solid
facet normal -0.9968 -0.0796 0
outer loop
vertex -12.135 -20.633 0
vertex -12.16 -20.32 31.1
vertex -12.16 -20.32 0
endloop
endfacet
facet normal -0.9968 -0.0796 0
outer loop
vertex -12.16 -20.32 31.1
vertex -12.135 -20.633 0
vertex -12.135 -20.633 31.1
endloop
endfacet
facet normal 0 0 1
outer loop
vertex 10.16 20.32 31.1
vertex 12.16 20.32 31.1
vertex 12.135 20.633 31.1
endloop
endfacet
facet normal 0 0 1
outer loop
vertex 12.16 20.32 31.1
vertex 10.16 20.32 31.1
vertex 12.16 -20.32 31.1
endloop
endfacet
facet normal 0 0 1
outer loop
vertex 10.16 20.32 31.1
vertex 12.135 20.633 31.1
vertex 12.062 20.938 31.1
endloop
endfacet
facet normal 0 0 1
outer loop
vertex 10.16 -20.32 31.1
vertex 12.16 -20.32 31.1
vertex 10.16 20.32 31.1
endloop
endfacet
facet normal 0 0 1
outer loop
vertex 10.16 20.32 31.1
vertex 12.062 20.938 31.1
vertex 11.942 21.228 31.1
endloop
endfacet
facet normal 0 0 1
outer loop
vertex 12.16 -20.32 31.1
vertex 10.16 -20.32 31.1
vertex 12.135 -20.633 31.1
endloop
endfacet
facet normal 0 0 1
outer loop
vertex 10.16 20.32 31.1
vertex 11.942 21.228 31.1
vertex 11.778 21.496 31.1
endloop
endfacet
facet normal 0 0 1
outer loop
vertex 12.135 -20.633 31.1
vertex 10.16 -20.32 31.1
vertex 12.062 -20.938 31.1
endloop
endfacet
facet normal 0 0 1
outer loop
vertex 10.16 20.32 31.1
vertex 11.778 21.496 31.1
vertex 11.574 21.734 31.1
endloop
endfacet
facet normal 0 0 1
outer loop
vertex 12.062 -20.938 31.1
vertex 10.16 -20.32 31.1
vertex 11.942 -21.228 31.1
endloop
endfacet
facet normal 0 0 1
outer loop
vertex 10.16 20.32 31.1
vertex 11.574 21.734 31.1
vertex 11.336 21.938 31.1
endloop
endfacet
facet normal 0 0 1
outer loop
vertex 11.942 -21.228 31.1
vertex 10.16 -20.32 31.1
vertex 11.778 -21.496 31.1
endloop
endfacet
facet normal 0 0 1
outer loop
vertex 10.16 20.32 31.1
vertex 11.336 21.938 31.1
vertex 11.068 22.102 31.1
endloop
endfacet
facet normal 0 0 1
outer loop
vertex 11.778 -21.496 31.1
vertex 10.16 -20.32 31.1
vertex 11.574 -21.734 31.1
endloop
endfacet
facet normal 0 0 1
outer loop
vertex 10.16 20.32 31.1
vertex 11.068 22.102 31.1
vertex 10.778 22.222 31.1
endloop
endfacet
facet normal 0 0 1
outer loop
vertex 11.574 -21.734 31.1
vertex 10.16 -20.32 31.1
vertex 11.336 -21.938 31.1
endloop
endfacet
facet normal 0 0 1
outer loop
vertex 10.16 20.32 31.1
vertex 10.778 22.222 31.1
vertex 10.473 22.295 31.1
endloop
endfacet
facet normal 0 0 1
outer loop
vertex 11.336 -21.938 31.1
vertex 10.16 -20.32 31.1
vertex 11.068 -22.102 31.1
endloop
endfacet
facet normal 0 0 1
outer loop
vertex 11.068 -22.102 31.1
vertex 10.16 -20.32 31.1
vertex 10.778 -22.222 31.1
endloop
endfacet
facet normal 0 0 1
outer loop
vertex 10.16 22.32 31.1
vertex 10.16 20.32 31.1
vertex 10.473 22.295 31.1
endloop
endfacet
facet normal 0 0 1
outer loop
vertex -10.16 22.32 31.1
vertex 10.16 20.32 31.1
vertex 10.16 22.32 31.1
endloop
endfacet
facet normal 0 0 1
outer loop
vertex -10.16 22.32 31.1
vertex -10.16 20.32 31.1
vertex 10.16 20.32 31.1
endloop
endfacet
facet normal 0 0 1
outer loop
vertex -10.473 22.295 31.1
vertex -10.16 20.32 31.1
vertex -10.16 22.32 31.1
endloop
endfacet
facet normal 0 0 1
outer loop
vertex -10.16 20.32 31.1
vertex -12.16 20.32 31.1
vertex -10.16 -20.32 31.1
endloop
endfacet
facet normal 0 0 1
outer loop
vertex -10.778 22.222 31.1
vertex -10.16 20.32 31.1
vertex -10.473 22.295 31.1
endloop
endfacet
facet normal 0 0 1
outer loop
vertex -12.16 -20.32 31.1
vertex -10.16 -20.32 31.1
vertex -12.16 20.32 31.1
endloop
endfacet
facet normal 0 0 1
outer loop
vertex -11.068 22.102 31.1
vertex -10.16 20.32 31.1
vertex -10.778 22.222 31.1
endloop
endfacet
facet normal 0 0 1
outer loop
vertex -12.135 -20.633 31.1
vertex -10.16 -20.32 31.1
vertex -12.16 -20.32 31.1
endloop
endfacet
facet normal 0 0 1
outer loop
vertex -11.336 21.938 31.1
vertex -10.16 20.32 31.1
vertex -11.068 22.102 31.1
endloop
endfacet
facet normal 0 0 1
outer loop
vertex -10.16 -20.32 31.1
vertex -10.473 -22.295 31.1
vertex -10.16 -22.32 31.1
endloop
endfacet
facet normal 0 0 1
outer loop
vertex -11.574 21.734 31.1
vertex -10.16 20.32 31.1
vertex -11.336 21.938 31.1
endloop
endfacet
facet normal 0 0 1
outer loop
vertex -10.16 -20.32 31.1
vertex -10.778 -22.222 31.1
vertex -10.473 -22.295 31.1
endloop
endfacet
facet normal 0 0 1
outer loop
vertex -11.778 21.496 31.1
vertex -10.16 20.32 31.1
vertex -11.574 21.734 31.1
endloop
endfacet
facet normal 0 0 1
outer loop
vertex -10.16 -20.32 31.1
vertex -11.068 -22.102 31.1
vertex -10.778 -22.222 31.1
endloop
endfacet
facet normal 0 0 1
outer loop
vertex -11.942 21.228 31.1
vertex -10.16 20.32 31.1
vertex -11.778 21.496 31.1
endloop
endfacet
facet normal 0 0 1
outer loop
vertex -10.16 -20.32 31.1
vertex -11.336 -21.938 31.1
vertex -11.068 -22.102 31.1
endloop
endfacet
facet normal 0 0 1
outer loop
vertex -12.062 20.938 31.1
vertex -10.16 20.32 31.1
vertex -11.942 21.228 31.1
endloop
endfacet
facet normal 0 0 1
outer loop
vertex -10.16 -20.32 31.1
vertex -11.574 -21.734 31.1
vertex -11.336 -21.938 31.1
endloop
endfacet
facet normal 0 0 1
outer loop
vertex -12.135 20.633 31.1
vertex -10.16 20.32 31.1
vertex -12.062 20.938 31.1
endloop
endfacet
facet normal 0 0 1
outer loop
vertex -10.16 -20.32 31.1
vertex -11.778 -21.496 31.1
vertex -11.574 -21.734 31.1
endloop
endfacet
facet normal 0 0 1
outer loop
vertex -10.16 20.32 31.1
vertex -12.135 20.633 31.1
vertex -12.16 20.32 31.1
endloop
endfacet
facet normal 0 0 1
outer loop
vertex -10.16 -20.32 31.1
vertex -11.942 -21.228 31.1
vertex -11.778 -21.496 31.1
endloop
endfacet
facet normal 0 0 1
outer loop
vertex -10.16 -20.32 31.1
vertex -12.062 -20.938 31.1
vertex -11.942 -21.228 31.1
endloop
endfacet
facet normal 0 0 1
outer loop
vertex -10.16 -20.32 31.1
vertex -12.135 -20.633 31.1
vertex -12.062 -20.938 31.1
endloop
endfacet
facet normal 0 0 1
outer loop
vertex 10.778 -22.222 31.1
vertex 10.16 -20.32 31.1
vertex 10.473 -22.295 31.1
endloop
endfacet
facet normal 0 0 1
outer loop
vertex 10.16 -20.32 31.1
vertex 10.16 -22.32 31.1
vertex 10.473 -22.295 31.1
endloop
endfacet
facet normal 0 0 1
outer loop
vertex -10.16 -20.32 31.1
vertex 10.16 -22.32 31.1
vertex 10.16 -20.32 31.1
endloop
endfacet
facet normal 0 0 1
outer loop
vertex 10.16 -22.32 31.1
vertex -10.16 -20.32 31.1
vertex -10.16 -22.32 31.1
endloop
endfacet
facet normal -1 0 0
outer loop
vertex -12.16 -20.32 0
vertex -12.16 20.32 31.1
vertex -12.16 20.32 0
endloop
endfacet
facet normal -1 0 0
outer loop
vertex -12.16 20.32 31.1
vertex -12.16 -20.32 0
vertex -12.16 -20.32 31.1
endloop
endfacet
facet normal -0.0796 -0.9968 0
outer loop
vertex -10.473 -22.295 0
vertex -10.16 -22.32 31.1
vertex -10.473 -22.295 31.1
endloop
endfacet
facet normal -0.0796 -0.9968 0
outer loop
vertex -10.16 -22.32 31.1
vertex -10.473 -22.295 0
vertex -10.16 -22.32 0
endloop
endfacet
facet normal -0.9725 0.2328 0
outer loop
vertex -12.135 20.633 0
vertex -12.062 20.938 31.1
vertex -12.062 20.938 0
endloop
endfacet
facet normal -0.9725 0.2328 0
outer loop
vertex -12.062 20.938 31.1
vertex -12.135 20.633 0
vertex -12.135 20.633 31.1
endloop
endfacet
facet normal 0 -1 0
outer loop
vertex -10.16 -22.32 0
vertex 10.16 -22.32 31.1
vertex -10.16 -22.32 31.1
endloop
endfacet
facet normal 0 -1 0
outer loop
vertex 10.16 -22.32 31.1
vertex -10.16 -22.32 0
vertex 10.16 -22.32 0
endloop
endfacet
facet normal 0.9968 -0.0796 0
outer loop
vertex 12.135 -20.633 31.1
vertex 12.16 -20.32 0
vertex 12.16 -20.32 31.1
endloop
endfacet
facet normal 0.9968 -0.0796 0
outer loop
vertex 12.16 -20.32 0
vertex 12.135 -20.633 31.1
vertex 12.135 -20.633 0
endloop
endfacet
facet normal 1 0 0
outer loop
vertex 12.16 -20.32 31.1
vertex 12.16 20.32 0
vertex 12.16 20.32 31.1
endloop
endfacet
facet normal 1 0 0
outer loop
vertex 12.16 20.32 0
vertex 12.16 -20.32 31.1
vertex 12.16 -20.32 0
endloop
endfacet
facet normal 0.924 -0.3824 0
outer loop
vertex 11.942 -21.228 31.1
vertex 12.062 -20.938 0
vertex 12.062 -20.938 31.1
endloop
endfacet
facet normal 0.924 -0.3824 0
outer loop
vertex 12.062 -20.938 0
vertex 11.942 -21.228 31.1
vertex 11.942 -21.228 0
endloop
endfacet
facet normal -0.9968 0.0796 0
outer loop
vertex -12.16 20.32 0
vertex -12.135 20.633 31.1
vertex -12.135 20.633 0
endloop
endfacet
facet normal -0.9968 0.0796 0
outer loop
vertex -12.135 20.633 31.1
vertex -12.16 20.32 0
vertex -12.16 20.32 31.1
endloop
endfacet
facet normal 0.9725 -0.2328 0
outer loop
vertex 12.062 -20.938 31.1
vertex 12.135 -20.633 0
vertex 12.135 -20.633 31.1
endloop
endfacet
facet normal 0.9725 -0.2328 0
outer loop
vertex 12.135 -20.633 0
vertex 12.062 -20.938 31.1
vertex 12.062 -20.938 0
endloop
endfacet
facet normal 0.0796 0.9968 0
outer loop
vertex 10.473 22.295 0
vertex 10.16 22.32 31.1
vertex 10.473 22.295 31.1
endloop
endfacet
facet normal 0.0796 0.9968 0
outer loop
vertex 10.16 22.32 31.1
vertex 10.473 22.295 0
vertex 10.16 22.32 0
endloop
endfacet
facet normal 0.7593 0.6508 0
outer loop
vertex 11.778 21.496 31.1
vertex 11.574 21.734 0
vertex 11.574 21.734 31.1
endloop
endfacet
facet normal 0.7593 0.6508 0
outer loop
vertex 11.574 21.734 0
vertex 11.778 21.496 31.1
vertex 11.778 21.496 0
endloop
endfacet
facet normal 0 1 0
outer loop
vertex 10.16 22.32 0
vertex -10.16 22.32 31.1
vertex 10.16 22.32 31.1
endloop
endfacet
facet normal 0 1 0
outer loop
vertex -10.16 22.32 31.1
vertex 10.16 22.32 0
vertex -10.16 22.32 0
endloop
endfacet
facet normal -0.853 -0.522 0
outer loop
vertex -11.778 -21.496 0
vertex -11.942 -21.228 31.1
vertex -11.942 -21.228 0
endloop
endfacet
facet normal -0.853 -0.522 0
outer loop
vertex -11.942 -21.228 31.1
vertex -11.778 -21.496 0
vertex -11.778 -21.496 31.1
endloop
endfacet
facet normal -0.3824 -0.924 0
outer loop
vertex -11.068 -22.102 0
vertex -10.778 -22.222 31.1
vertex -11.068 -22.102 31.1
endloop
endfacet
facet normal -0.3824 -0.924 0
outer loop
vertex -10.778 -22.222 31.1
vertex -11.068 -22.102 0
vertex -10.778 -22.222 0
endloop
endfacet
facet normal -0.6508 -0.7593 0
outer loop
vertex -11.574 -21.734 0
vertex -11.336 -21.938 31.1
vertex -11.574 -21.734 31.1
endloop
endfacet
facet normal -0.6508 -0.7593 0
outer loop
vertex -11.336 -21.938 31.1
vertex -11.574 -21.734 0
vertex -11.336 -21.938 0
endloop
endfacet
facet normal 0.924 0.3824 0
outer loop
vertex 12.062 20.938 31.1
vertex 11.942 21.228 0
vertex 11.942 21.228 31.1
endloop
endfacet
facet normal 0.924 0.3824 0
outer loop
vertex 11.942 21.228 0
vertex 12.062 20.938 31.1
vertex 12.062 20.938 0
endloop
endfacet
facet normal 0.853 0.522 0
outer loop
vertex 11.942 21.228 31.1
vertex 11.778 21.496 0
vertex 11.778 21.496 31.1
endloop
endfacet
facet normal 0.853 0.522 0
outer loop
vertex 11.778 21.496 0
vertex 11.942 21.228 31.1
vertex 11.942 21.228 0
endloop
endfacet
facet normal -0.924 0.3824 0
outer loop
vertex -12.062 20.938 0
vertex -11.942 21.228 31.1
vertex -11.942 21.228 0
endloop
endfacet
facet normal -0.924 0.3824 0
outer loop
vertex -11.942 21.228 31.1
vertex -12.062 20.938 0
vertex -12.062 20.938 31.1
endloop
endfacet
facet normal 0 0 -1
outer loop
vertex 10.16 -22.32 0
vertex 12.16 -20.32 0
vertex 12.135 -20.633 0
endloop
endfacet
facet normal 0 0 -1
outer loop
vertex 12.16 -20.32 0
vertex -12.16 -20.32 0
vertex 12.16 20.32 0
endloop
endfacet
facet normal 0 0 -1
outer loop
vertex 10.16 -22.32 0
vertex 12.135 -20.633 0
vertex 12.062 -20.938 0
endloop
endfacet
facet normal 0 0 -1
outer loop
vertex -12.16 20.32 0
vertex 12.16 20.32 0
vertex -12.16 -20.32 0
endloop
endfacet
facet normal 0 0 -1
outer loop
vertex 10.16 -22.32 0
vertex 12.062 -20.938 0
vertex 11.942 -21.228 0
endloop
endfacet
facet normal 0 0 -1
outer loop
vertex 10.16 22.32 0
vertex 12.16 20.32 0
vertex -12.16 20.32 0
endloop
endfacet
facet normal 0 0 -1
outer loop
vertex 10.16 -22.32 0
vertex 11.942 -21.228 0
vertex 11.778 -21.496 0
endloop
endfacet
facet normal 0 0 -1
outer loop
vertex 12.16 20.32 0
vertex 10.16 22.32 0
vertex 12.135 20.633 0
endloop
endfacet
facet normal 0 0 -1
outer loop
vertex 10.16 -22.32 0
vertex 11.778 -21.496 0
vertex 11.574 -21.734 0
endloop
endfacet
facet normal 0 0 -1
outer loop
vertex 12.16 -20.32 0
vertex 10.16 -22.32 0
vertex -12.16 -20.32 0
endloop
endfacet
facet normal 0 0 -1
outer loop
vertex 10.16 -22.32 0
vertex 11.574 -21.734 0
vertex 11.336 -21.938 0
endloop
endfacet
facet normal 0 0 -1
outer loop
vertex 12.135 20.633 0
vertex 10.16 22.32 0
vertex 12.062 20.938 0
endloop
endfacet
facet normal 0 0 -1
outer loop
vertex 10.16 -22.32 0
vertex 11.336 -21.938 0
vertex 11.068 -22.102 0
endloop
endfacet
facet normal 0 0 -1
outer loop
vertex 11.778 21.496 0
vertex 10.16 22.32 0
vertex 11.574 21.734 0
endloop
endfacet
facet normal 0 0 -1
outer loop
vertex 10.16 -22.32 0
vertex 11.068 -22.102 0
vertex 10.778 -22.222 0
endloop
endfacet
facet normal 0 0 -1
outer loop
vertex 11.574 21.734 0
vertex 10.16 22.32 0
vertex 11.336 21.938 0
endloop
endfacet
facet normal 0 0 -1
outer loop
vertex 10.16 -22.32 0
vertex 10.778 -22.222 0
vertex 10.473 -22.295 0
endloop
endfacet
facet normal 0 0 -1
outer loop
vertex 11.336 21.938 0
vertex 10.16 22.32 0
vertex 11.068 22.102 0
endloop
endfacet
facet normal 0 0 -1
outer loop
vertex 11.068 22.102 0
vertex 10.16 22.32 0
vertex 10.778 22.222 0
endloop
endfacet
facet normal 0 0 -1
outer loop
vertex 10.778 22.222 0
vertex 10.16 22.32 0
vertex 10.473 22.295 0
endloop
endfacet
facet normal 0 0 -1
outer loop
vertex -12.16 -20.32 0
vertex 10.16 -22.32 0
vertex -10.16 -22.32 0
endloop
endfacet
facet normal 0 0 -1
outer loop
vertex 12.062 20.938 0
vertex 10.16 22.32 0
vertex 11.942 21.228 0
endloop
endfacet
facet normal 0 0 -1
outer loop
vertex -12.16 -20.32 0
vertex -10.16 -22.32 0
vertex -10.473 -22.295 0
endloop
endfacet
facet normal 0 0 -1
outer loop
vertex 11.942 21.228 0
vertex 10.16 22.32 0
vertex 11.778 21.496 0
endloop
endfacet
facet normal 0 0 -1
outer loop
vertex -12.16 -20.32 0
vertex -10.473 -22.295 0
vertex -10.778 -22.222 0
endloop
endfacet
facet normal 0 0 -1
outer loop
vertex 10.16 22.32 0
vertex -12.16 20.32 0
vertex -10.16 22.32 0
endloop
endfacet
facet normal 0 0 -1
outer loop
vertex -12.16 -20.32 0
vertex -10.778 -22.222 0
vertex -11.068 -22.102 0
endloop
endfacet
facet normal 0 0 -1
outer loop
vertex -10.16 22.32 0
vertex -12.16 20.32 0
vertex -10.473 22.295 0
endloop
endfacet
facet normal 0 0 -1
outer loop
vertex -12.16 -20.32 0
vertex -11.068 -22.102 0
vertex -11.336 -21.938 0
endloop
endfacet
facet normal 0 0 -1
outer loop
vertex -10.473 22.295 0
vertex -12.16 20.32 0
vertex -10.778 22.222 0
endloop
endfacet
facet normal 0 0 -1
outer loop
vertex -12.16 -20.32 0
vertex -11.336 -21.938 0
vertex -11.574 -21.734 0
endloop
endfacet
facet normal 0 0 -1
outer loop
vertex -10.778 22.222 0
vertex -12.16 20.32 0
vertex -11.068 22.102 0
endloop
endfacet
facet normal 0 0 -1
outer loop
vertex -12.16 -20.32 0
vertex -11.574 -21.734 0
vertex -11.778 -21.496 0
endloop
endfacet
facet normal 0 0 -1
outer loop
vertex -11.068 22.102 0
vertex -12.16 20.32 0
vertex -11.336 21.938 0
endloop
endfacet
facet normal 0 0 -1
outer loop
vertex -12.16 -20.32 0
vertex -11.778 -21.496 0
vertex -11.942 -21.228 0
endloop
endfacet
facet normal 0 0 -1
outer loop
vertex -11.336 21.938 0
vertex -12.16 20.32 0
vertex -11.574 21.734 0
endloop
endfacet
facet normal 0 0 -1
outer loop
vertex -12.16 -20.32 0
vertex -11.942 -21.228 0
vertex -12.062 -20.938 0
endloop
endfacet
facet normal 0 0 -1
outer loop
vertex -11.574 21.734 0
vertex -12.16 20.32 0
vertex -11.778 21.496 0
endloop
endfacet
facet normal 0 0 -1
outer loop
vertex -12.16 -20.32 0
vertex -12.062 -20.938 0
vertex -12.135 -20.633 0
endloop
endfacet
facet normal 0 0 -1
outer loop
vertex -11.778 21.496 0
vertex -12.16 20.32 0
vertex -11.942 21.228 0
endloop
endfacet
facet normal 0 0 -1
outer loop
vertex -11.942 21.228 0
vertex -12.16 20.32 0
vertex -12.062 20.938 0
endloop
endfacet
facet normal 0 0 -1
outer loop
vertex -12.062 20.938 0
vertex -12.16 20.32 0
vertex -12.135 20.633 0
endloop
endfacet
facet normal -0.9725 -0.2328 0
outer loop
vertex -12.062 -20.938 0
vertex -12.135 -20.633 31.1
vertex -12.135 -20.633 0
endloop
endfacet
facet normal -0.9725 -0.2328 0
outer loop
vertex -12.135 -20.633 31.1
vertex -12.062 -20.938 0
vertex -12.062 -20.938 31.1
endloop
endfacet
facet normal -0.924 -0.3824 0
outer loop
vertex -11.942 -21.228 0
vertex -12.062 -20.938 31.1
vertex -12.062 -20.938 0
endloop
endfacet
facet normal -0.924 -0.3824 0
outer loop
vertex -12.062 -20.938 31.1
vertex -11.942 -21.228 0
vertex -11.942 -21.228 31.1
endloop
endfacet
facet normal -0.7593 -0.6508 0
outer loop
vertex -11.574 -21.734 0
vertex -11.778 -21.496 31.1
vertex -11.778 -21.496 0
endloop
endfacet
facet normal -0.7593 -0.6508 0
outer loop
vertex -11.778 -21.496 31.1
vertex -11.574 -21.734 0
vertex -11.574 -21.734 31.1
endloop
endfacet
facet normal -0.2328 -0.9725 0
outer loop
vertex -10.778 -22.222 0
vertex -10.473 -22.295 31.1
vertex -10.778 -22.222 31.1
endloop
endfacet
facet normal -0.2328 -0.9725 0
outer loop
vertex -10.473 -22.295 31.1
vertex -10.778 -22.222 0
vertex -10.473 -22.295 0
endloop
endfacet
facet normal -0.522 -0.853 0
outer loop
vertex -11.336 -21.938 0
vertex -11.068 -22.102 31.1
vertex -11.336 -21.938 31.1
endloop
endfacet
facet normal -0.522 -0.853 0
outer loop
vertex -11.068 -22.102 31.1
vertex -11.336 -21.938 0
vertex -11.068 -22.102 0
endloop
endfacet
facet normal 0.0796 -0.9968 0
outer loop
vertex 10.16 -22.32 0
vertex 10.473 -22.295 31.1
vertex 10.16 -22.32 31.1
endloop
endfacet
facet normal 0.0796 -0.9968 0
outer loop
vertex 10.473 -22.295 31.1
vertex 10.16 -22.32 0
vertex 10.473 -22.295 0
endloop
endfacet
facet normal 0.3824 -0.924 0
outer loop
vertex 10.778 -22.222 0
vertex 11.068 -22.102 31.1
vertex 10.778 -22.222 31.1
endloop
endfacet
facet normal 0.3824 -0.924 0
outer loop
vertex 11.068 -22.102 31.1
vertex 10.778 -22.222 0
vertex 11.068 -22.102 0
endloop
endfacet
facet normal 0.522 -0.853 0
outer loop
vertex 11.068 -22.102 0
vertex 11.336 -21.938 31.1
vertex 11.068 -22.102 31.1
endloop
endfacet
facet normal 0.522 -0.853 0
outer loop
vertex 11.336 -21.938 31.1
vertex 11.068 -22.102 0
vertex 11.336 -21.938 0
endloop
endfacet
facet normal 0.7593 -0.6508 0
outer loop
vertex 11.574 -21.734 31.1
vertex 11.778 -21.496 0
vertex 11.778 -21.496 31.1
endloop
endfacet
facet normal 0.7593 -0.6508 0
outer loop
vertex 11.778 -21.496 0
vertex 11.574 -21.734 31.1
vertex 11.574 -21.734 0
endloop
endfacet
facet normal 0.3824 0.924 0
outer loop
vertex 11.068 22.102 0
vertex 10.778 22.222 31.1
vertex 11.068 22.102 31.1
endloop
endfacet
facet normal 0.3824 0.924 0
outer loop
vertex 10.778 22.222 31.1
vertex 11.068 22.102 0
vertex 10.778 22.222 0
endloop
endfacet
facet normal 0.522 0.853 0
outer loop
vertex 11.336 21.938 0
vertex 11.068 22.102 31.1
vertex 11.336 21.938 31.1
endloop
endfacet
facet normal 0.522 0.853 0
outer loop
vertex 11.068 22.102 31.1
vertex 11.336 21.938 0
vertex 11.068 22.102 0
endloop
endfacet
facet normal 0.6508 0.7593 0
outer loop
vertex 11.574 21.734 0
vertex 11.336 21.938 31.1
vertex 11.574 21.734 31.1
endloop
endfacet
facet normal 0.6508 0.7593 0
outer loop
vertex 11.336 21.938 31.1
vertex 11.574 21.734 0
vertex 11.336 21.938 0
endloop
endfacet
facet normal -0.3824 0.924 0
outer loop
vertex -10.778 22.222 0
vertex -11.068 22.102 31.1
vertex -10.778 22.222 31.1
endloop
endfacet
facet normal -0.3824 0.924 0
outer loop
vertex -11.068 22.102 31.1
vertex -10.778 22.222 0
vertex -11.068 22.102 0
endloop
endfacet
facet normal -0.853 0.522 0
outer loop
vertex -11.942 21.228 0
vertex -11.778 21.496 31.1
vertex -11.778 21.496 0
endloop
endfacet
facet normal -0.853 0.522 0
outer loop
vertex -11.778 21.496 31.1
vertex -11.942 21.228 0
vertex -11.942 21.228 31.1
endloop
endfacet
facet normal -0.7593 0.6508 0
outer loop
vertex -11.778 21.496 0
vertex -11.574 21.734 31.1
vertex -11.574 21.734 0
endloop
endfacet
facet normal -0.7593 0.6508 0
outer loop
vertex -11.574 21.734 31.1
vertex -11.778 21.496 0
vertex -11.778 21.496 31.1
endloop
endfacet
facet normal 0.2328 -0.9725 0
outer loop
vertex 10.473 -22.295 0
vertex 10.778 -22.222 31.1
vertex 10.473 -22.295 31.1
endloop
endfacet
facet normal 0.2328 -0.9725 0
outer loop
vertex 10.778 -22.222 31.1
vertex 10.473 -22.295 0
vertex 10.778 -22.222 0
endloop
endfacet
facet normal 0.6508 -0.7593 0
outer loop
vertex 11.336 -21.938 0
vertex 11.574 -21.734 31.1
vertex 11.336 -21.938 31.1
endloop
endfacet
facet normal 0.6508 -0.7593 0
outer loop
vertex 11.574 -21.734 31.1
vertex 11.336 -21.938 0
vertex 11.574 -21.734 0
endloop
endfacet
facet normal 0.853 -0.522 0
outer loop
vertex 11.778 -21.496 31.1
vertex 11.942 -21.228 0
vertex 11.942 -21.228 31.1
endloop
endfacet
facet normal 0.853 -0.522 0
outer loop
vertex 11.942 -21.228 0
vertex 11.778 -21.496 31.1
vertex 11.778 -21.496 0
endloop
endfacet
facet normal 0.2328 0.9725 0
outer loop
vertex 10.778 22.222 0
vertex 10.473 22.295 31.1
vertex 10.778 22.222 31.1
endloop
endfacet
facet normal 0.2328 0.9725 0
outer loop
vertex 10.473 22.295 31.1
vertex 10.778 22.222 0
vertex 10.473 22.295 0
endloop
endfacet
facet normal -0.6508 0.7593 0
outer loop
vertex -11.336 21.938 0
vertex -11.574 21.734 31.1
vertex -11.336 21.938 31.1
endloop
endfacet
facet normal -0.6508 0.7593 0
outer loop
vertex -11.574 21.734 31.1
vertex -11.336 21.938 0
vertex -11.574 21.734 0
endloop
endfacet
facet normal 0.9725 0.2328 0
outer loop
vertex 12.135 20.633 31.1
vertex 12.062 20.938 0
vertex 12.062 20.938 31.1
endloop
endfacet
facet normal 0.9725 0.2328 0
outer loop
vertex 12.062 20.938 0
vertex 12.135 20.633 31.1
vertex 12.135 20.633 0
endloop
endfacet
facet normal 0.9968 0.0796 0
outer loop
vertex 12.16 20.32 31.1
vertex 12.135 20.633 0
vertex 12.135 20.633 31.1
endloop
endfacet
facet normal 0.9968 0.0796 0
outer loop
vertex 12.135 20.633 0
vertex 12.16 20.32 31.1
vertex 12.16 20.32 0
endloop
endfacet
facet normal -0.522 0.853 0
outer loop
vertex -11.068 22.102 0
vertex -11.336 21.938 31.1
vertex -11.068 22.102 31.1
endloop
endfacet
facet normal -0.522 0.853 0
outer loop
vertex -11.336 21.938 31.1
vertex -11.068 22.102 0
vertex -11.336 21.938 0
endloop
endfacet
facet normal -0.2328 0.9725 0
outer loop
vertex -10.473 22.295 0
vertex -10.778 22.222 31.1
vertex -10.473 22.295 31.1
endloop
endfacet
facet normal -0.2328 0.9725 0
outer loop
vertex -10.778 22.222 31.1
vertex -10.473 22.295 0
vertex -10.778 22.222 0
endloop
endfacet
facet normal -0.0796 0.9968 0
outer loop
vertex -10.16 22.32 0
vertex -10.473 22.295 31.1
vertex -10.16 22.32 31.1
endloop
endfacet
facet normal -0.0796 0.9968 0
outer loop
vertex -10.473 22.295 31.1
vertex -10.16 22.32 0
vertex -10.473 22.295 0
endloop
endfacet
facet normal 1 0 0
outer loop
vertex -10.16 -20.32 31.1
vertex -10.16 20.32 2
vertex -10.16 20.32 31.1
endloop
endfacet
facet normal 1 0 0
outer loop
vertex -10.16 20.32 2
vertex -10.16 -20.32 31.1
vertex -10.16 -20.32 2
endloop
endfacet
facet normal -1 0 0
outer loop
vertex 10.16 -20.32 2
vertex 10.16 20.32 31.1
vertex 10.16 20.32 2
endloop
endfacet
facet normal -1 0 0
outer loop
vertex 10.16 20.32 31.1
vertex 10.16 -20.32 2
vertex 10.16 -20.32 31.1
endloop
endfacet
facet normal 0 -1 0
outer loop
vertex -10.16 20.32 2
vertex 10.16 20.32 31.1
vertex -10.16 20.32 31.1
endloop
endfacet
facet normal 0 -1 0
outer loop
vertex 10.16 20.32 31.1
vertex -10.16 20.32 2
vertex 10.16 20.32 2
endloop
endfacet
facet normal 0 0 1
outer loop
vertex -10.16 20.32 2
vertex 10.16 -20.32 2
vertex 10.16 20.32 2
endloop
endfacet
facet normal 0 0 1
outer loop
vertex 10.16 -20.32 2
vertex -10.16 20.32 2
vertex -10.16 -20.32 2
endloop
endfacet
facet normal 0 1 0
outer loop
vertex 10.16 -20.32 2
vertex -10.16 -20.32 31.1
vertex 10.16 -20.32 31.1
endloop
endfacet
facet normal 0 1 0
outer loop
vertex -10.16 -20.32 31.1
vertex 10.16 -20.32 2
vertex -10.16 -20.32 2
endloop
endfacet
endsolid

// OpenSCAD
// file: ../configuration.scad
$fn=40; // model faces resolution.

//OBECNE PARAMETRY 
//----------------------------------------------------------------
//----------------------------------------------------------------

vyska_krystalu=24;
presah_krystalu=5;
rezerva_nad_krystalem=5;
vyska_drzaku_krystalu=vyska_krystalu-presah_krystalu;


zakladna_krystalu_x=7.8; //0.8mm rezerva hrana SIPM je 7mm
zakladna_krystalu_y=7.8;
sila_steny=4;
sila_materialu_zakladny=2;


vyska_zapusti_pro_PCB=0; //výčka krycího matriálu pro PCB a zároveň pro vytvoření vany pro zalití silikonem, kvůli světlotěsnoti.
vyska_SIPM_nad_PCB=2.4; //výška celého SIPM senzoru
tolerance_pro_dotazeni_k_SIPM=-0.5; // kvůli dotažení krystalu k SIPM
velikost_modulu_x=2; //počet der
velikost_modulu_y=4;
rotec_der_modulu=10.16;

vyska_matky=3;
sirka_matky=6.7;
prumer_sroubu=3.4;
prumer_hlavy_sroubu=6;

//Pro díl SIPMBOX01C_D02
D02_velikost_modulu_x=3; //počet der
D02_velikost_modulu_y=4;
D02_vyska_bocniho_prekryvu=9;
// main file
use <../src/SIPMBOX01C.scad>

include <../configuration.scad>

SIPMBOX01C_D03();
